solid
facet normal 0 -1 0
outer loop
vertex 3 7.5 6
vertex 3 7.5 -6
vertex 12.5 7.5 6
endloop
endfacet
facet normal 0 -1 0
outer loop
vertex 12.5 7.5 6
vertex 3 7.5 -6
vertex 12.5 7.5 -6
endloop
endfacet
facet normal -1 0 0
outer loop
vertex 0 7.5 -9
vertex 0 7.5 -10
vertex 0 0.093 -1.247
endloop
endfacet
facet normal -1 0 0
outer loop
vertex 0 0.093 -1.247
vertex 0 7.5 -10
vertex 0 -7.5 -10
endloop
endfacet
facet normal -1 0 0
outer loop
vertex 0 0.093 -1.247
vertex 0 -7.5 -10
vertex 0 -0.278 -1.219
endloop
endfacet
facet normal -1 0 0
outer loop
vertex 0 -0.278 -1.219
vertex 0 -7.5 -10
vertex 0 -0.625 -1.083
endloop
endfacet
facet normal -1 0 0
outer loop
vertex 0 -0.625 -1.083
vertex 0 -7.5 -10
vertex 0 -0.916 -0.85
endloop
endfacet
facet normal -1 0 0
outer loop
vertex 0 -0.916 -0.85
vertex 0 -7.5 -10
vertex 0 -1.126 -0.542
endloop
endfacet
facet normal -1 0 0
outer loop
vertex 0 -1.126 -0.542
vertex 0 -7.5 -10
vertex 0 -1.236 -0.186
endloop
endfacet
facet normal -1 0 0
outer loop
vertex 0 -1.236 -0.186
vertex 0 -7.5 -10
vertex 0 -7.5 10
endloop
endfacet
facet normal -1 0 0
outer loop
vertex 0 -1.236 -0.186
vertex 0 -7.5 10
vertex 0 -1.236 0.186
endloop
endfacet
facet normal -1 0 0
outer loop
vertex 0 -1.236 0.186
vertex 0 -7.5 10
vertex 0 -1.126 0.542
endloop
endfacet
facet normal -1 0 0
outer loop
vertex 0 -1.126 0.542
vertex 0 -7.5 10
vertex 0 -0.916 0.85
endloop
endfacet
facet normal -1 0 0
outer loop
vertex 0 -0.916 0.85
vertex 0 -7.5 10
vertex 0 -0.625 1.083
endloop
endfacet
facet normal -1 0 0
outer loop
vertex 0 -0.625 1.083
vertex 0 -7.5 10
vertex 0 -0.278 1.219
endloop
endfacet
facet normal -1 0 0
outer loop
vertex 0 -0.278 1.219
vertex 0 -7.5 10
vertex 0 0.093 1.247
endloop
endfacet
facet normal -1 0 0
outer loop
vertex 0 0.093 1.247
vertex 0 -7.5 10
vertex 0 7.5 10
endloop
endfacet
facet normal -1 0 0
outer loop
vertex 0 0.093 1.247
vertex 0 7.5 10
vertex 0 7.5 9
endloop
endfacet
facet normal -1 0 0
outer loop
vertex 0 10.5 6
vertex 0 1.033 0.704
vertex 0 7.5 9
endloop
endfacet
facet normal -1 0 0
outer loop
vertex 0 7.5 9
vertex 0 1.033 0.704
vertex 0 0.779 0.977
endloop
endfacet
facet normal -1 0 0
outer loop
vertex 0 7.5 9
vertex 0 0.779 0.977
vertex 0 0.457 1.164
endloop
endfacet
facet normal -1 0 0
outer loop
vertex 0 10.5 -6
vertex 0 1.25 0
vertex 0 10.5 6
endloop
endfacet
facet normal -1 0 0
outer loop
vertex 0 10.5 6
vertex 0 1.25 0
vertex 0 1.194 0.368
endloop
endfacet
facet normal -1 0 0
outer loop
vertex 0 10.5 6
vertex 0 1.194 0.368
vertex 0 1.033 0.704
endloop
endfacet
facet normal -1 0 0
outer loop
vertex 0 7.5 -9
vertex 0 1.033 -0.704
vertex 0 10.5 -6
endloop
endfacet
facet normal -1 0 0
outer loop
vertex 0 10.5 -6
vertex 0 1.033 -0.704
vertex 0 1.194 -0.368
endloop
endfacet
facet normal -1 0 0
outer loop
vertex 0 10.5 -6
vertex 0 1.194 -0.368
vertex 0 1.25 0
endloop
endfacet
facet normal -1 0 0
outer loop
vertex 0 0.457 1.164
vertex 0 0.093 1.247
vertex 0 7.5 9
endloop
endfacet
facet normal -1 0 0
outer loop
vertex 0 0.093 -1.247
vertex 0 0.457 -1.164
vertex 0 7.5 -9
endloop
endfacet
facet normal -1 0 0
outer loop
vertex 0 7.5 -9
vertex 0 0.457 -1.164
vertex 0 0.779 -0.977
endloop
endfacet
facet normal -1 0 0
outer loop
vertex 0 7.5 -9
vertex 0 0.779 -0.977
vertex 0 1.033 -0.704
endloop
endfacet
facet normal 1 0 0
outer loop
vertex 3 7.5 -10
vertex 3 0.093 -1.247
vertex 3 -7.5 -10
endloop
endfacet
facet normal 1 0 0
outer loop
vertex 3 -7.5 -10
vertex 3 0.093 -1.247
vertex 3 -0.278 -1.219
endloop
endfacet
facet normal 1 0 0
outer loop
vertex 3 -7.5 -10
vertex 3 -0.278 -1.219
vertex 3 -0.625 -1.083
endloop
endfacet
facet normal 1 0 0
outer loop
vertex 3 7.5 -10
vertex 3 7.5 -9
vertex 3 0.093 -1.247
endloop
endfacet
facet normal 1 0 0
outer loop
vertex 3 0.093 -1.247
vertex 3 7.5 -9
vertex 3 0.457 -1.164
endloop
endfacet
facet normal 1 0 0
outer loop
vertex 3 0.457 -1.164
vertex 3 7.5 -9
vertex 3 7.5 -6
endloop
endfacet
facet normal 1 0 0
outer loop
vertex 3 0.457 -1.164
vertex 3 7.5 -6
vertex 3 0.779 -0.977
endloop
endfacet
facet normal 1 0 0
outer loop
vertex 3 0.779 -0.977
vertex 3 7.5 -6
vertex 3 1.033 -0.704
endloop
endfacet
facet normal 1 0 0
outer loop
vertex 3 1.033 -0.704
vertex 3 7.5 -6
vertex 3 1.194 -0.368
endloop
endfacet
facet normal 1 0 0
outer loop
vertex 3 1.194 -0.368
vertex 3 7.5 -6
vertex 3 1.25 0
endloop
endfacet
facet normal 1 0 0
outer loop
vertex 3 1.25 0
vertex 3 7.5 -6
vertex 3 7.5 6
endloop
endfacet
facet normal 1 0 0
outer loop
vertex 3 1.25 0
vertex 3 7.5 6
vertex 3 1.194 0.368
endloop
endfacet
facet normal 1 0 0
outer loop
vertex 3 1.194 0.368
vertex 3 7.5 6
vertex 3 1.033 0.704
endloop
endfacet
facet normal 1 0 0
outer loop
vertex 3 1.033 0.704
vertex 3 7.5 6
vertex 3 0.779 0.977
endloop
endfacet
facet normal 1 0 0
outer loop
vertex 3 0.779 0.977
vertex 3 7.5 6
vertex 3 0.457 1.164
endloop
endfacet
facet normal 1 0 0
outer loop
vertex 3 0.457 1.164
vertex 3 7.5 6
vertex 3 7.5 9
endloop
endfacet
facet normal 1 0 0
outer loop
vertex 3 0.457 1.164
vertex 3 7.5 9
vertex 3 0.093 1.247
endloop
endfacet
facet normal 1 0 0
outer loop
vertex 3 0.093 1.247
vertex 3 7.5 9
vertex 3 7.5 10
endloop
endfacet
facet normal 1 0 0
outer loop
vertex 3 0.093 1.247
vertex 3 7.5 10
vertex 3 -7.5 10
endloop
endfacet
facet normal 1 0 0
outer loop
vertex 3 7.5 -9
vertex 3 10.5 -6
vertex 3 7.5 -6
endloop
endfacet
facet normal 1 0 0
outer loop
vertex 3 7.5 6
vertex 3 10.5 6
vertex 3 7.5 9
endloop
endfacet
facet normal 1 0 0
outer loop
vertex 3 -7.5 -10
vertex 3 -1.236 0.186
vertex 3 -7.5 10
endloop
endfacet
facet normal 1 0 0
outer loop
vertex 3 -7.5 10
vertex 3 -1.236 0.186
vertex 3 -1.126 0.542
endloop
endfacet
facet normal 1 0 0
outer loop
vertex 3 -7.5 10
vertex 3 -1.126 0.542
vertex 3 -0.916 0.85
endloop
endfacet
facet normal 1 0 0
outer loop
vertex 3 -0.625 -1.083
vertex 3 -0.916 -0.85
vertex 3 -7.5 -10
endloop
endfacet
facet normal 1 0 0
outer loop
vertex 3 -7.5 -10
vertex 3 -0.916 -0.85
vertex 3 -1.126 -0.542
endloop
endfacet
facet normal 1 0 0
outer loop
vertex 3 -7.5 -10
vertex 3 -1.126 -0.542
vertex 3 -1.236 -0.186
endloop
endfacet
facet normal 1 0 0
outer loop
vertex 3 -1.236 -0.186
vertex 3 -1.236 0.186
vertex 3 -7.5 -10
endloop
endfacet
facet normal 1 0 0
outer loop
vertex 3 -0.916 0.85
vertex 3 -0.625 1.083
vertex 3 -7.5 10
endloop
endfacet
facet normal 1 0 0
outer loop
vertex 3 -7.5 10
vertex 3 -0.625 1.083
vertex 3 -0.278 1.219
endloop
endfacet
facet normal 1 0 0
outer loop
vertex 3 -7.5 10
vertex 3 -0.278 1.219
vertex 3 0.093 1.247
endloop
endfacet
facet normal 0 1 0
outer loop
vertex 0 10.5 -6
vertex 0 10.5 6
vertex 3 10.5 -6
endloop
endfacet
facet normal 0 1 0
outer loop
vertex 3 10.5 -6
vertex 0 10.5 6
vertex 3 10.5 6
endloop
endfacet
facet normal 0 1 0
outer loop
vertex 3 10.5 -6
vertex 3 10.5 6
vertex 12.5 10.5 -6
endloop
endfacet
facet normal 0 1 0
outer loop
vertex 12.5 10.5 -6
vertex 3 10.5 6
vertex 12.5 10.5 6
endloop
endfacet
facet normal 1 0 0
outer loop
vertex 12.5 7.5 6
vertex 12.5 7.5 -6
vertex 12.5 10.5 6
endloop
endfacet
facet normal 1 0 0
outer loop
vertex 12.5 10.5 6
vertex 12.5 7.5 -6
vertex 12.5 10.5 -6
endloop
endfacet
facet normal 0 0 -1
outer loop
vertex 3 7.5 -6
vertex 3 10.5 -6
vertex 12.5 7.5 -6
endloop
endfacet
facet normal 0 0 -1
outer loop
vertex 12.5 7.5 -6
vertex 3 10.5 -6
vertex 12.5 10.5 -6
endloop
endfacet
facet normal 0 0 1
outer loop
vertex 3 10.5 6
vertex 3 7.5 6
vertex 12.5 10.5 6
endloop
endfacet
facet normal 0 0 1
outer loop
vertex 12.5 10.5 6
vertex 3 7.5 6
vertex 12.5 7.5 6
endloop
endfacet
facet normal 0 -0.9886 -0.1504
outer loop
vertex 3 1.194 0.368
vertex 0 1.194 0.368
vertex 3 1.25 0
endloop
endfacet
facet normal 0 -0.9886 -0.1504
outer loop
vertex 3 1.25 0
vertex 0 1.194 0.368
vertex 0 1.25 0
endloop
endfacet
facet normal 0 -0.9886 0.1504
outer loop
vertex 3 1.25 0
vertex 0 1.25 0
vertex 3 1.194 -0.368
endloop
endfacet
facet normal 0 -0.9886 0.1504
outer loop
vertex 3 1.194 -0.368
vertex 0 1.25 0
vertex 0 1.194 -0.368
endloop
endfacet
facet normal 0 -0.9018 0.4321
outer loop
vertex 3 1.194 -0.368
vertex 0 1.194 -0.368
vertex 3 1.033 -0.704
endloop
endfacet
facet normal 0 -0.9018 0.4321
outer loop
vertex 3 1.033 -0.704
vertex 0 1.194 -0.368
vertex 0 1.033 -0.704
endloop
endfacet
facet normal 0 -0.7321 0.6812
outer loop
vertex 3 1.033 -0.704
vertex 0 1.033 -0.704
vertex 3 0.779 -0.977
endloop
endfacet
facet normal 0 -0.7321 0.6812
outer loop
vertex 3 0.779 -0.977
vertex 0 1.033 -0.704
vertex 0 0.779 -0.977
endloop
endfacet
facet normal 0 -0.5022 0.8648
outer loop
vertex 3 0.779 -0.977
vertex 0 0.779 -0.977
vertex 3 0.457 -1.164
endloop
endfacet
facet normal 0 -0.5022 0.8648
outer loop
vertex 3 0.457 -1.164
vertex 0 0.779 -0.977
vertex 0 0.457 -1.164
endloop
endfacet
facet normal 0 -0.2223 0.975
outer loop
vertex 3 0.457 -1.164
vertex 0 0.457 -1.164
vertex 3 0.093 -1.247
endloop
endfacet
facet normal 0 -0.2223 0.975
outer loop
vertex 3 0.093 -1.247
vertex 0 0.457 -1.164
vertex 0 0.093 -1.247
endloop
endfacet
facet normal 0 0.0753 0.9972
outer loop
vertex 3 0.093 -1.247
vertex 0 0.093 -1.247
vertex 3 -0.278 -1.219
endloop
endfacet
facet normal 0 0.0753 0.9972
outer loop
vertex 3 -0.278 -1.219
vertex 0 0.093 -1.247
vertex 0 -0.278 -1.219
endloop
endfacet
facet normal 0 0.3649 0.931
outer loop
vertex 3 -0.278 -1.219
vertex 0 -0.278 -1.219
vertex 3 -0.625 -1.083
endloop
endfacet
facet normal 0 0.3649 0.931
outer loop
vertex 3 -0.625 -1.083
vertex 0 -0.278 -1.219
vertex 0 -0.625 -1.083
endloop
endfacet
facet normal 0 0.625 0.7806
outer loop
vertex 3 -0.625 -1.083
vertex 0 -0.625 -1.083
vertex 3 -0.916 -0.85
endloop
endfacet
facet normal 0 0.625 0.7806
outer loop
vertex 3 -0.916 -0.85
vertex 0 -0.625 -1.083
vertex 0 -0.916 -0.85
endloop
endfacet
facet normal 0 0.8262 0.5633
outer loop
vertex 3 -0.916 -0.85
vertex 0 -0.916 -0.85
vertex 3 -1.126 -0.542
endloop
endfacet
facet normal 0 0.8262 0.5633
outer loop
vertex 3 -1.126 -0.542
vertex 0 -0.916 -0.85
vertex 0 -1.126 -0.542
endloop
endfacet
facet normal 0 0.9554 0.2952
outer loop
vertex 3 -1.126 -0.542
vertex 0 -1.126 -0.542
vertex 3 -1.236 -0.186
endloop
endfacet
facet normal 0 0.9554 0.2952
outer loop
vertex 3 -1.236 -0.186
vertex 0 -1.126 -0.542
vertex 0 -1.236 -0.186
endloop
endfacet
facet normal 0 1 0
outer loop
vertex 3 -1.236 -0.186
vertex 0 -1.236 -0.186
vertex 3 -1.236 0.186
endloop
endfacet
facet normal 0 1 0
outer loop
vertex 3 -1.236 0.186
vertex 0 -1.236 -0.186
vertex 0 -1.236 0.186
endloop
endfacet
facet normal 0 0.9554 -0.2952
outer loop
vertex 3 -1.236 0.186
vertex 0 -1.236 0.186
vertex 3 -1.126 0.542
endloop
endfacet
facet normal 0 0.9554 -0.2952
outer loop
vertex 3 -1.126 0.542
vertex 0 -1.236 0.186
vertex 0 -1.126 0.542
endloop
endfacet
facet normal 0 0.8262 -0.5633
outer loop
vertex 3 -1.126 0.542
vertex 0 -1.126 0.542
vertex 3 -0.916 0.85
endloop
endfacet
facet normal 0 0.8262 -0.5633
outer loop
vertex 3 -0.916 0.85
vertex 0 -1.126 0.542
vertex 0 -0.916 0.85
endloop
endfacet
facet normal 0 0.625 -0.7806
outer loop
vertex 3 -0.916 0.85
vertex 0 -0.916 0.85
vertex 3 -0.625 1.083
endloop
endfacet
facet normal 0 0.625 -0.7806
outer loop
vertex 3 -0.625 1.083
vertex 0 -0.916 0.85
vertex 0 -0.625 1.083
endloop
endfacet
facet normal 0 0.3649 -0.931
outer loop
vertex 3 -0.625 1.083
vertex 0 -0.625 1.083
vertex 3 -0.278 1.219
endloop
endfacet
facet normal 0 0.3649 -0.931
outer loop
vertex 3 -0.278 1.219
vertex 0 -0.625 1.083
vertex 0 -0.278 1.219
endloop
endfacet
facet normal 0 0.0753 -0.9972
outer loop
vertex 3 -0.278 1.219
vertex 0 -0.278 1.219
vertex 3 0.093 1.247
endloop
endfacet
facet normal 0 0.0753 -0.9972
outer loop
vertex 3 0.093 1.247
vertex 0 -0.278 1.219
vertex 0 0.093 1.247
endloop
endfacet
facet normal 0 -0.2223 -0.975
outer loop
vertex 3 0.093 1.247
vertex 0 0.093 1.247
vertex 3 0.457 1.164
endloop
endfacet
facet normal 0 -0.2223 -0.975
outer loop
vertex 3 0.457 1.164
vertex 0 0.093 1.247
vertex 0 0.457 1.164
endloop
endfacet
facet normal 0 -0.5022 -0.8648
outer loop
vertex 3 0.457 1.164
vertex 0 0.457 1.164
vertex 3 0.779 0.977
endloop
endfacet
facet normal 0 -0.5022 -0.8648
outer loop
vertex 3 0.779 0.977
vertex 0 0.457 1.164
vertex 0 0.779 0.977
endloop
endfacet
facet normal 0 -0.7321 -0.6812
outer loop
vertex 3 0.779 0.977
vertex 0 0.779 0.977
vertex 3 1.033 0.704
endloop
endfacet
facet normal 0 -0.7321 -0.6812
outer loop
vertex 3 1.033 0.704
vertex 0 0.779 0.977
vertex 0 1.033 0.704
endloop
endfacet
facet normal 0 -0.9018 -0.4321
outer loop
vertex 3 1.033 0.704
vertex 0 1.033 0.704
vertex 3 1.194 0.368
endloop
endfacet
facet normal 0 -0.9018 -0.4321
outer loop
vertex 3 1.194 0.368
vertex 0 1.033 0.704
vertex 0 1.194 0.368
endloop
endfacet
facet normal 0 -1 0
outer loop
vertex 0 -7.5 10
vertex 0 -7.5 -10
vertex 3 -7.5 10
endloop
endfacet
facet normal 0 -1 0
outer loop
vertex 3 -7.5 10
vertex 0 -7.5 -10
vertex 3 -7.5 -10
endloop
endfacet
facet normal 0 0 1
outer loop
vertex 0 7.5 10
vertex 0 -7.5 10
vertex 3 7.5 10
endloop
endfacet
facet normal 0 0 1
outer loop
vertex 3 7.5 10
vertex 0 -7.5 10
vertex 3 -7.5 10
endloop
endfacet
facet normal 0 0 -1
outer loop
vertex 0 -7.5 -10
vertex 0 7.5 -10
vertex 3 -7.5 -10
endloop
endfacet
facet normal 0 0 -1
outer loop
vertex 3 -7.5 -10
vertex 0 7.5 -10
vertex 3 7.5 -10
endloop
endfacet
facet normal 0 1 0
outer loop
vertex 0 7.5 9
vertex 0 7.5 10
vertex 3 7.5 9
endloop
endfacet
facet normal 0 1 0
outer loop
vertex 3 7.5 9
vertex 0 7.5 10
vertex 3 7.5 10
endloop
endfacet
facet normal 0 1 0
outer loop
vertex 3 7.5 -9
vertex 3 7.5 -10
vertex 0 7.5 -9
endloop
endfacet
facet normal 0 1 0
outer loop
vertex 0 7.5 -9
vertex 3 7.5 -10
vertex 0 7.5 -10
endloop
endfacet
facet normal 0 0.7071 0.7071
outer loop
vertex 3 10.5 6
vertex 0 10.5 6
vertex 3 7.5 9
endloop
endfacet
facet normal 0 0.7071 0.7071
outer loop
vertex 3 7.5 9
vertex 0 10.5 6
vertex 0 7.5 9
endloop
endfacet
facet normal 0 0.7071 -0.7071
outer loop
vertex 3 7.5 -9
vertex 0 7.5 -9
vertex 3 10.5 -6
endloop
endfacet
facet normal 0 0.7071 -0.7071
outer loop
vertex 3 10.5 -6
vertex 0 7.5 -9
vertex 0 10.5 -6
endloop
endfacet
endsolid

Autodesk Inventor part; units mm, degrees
ref_plane "YZ Plane" through (0, 0, 0) normal (1, 0, 0) x (0, 1, 0)
ref_plane "XZ Plane" through (0, 0, 0) normal (0, 1, 0) x (-1, 0, 0)
ref_plane "XY Plane" through (0, 0, 0) normal (0, 0, 1) x (1, 0, 0)
sketch "스케치1" plane through (0, 0, 0) normal (1, 0, 0) x (0, 1, 0)
  line L0 (-7.5, 10) -> (7.5, 10)
  line L1 (7.5, 10) -> (7.5, -10)
  line L2 (7.5, -10) -> (-7.5, -10)
  line L3 (-7.5, -10) -> (-7.5, 10)
  line L4 (-7.5, 10) -> (7.5, -10) construction
  line L5 (7.5, 10) -> (-7.5, -10) construction
  circle A0 centre (0, 0) radius 1.25
  line L6 (7.5, 10) -> (7.5, -10)
  line L7 (7.5, -10) -> (10.5, -10)
  line L8 (10.5, -10) -> (10.5, 10)
  line L9 (10.5, 10) -> (7.5, 10)
  line L10 (10.5, -6) -> (7.5, -6)
  line L11 (10.5, 6) -> (7.5, 6)
  dimension "d0" = 15
  dimension "d1" = 20
  dimension "d2" = 2.5
  dimension "d5" = 3
  dimension "d6" = 6
  dimension "d7" = 6
extrude "돌출1" add sketch "스케치1" along normal blind 3 contours L0 L1 L2 L3
extrude "돌출2" add sketch "스케치1" along normal blind 12.5 contours L11 L8 L10 L1
chamfer "모따기1" distance 3 angle 45 2 edges at (1.5, 7.5, 6) (1.5, 7.5, -6)
properties part number "latch"
